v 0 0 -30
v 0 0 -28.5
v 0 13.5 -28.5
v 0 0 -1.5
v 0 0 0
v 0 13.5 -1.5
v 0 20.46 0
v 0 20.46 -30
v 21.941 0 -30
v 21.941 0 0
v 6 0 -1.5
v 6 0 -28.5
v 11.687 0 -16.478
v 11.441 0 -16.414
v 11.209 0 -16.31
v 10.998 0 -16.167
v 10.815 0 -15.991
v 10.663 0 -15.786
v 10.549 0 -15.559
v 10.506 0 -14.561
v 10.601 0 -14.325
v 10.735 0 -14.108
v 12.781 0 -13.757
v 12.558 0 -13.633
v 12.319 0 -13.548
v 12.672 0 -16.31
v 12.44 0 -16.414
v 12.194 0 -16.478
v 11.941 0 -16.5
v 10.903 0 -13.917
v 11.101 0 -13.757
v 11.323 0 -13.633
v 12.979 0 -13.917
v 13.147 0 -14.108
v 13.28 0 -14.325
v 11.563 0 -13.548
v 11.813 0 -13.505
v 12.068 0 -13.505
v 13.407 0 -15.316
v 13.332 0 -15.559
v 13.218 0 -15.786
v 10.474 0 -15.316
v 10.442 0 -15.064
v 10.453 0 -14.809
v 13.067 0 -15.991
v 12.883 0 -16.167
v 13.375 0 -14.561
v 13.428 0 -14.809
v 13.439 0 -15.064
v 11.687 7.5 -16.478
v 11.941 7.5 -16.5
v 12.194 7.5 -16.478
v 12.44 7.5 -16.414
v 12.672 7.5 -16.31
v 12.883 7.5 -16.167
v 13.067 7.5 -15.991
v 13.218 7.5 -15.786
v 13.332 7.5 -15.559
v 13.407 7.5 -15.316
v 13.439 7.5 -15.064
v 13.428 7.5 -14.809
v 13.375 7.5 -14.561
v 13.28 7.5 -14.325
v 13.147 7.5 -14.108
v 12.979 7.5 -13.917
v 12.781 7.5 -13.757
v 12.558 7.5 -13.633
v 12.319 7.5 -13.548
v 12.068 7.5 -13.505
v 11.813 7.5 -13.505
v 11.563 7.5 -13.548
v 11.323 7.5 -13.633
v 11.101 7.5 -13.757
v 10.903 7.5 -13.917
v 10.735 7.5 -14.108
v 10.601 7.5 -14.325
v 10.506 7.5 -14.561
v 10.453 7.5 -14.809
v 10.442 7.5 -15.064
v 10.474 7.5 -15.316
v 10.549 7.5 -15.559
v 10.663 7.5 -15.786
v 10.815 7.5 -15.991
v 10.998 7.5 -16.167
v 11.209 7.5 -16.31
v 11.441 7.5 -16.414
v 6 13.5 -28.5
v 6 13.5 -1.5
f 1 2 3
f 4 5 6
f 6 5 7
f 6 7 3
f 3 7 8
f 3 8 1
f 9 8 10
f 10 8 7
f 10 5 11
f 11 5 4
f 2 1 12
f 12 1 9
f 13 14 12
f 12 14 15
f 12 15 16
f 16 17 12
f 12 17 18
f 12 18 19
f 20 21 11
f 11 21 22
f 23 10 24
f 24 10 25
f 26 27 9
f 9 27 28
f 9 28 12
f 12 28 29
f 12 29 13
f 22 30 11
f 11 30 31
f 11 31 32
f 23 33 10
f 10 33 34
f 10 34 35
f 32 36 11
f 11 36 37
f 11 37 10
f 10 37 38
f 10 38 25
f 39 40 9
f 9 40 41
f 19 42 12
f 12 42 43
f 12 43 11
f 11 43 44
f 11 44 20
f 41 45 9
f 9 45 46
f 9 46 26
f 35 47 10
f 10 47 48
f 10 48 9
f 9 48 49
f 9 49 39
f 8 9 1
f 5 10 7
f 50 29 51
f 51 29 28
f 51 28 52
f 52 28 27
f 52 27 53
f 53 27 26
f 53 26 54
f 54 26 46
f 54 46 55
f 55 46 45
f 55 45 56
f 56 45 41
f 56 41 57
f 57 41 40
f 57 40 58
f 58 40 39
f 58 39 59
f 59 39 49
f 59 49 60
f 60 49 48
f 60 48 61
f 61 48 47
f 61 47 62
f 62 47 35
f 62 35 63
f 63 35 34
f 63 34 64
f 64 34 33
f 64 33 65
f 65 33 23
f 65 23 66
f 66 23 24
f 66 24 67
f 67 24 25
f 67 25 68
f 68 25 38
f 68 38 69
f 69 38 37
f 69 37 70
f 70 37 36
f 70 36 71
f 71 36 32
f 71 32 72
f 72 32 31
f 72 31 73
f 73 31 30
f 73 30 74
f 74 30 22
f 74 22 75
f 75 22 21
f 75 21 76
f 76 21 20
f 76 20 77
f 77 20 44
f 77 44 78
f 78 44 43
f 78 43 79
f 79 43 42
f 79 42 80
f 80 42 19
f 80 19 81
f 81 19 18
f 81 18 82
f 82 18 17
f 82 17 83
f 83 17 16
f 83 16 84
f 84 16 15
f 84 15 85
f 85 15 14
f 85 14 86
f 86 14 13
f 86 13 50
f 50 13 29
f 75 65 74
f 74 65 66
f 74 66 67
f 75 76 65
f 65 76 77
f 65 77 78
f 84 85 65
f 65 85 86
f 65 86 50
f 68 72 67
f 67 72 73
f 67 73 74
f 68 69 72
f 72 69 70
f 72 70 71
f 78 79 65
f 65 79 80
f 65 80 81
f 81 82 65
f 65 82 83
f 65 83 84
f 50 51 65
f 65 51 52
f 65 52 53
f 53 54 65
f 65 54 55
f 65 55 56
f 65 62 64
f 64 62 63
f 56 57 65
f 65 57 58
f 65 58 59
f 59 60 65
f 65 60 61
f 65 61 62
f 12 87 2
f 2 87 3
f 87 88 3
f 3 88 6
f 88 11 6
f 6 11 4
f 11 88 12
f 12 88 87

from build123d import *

# Parameters (mm, degrees)
BOSS_EXTRUDE1_DEPTH = 30
SKETCH3_R           = 1.5
CUT_EXTRUDE1_DEPTH  = 7.5
SKETCH6_W           = 27
SKETCH6_H           = 13.5
CUT_EXTRUDE2_DEPTH  = 6


with BuildPart() as part:
    # Sketch1 → Boss-Extrude1 (new body)
    with BuildSketch(Plane.XY):
        Polygon((0, 0), (21.940611049, 0), (0, 20.459950802), align=None)
    extrude(amount=-BOSS_EXTRUDE1_DEPTH)

    # Sketch3 → Cut-Extrude1 (cut)
    with BuildSketch(Plane.XZ):
        with Locations((11.940611049, -15)):
            Circle(SKETCH3_R)
    extrude(amount=-CUT_EXTRUDE1_DEPTH, mode=Mode.SUBTRACT)

    # Sketch6 → Cut-Extrude2 (cut)
    with BuildSketch(Plane.ZY):
        with Locations((-15, 6.75)):
            Rectangle(SKETCH6_W, SKETCH6_H)
    extrude(amount=-CUT_EXTRUDE2_DEPTH, mode=Mode.SUBTRACT)


solid = part.part
